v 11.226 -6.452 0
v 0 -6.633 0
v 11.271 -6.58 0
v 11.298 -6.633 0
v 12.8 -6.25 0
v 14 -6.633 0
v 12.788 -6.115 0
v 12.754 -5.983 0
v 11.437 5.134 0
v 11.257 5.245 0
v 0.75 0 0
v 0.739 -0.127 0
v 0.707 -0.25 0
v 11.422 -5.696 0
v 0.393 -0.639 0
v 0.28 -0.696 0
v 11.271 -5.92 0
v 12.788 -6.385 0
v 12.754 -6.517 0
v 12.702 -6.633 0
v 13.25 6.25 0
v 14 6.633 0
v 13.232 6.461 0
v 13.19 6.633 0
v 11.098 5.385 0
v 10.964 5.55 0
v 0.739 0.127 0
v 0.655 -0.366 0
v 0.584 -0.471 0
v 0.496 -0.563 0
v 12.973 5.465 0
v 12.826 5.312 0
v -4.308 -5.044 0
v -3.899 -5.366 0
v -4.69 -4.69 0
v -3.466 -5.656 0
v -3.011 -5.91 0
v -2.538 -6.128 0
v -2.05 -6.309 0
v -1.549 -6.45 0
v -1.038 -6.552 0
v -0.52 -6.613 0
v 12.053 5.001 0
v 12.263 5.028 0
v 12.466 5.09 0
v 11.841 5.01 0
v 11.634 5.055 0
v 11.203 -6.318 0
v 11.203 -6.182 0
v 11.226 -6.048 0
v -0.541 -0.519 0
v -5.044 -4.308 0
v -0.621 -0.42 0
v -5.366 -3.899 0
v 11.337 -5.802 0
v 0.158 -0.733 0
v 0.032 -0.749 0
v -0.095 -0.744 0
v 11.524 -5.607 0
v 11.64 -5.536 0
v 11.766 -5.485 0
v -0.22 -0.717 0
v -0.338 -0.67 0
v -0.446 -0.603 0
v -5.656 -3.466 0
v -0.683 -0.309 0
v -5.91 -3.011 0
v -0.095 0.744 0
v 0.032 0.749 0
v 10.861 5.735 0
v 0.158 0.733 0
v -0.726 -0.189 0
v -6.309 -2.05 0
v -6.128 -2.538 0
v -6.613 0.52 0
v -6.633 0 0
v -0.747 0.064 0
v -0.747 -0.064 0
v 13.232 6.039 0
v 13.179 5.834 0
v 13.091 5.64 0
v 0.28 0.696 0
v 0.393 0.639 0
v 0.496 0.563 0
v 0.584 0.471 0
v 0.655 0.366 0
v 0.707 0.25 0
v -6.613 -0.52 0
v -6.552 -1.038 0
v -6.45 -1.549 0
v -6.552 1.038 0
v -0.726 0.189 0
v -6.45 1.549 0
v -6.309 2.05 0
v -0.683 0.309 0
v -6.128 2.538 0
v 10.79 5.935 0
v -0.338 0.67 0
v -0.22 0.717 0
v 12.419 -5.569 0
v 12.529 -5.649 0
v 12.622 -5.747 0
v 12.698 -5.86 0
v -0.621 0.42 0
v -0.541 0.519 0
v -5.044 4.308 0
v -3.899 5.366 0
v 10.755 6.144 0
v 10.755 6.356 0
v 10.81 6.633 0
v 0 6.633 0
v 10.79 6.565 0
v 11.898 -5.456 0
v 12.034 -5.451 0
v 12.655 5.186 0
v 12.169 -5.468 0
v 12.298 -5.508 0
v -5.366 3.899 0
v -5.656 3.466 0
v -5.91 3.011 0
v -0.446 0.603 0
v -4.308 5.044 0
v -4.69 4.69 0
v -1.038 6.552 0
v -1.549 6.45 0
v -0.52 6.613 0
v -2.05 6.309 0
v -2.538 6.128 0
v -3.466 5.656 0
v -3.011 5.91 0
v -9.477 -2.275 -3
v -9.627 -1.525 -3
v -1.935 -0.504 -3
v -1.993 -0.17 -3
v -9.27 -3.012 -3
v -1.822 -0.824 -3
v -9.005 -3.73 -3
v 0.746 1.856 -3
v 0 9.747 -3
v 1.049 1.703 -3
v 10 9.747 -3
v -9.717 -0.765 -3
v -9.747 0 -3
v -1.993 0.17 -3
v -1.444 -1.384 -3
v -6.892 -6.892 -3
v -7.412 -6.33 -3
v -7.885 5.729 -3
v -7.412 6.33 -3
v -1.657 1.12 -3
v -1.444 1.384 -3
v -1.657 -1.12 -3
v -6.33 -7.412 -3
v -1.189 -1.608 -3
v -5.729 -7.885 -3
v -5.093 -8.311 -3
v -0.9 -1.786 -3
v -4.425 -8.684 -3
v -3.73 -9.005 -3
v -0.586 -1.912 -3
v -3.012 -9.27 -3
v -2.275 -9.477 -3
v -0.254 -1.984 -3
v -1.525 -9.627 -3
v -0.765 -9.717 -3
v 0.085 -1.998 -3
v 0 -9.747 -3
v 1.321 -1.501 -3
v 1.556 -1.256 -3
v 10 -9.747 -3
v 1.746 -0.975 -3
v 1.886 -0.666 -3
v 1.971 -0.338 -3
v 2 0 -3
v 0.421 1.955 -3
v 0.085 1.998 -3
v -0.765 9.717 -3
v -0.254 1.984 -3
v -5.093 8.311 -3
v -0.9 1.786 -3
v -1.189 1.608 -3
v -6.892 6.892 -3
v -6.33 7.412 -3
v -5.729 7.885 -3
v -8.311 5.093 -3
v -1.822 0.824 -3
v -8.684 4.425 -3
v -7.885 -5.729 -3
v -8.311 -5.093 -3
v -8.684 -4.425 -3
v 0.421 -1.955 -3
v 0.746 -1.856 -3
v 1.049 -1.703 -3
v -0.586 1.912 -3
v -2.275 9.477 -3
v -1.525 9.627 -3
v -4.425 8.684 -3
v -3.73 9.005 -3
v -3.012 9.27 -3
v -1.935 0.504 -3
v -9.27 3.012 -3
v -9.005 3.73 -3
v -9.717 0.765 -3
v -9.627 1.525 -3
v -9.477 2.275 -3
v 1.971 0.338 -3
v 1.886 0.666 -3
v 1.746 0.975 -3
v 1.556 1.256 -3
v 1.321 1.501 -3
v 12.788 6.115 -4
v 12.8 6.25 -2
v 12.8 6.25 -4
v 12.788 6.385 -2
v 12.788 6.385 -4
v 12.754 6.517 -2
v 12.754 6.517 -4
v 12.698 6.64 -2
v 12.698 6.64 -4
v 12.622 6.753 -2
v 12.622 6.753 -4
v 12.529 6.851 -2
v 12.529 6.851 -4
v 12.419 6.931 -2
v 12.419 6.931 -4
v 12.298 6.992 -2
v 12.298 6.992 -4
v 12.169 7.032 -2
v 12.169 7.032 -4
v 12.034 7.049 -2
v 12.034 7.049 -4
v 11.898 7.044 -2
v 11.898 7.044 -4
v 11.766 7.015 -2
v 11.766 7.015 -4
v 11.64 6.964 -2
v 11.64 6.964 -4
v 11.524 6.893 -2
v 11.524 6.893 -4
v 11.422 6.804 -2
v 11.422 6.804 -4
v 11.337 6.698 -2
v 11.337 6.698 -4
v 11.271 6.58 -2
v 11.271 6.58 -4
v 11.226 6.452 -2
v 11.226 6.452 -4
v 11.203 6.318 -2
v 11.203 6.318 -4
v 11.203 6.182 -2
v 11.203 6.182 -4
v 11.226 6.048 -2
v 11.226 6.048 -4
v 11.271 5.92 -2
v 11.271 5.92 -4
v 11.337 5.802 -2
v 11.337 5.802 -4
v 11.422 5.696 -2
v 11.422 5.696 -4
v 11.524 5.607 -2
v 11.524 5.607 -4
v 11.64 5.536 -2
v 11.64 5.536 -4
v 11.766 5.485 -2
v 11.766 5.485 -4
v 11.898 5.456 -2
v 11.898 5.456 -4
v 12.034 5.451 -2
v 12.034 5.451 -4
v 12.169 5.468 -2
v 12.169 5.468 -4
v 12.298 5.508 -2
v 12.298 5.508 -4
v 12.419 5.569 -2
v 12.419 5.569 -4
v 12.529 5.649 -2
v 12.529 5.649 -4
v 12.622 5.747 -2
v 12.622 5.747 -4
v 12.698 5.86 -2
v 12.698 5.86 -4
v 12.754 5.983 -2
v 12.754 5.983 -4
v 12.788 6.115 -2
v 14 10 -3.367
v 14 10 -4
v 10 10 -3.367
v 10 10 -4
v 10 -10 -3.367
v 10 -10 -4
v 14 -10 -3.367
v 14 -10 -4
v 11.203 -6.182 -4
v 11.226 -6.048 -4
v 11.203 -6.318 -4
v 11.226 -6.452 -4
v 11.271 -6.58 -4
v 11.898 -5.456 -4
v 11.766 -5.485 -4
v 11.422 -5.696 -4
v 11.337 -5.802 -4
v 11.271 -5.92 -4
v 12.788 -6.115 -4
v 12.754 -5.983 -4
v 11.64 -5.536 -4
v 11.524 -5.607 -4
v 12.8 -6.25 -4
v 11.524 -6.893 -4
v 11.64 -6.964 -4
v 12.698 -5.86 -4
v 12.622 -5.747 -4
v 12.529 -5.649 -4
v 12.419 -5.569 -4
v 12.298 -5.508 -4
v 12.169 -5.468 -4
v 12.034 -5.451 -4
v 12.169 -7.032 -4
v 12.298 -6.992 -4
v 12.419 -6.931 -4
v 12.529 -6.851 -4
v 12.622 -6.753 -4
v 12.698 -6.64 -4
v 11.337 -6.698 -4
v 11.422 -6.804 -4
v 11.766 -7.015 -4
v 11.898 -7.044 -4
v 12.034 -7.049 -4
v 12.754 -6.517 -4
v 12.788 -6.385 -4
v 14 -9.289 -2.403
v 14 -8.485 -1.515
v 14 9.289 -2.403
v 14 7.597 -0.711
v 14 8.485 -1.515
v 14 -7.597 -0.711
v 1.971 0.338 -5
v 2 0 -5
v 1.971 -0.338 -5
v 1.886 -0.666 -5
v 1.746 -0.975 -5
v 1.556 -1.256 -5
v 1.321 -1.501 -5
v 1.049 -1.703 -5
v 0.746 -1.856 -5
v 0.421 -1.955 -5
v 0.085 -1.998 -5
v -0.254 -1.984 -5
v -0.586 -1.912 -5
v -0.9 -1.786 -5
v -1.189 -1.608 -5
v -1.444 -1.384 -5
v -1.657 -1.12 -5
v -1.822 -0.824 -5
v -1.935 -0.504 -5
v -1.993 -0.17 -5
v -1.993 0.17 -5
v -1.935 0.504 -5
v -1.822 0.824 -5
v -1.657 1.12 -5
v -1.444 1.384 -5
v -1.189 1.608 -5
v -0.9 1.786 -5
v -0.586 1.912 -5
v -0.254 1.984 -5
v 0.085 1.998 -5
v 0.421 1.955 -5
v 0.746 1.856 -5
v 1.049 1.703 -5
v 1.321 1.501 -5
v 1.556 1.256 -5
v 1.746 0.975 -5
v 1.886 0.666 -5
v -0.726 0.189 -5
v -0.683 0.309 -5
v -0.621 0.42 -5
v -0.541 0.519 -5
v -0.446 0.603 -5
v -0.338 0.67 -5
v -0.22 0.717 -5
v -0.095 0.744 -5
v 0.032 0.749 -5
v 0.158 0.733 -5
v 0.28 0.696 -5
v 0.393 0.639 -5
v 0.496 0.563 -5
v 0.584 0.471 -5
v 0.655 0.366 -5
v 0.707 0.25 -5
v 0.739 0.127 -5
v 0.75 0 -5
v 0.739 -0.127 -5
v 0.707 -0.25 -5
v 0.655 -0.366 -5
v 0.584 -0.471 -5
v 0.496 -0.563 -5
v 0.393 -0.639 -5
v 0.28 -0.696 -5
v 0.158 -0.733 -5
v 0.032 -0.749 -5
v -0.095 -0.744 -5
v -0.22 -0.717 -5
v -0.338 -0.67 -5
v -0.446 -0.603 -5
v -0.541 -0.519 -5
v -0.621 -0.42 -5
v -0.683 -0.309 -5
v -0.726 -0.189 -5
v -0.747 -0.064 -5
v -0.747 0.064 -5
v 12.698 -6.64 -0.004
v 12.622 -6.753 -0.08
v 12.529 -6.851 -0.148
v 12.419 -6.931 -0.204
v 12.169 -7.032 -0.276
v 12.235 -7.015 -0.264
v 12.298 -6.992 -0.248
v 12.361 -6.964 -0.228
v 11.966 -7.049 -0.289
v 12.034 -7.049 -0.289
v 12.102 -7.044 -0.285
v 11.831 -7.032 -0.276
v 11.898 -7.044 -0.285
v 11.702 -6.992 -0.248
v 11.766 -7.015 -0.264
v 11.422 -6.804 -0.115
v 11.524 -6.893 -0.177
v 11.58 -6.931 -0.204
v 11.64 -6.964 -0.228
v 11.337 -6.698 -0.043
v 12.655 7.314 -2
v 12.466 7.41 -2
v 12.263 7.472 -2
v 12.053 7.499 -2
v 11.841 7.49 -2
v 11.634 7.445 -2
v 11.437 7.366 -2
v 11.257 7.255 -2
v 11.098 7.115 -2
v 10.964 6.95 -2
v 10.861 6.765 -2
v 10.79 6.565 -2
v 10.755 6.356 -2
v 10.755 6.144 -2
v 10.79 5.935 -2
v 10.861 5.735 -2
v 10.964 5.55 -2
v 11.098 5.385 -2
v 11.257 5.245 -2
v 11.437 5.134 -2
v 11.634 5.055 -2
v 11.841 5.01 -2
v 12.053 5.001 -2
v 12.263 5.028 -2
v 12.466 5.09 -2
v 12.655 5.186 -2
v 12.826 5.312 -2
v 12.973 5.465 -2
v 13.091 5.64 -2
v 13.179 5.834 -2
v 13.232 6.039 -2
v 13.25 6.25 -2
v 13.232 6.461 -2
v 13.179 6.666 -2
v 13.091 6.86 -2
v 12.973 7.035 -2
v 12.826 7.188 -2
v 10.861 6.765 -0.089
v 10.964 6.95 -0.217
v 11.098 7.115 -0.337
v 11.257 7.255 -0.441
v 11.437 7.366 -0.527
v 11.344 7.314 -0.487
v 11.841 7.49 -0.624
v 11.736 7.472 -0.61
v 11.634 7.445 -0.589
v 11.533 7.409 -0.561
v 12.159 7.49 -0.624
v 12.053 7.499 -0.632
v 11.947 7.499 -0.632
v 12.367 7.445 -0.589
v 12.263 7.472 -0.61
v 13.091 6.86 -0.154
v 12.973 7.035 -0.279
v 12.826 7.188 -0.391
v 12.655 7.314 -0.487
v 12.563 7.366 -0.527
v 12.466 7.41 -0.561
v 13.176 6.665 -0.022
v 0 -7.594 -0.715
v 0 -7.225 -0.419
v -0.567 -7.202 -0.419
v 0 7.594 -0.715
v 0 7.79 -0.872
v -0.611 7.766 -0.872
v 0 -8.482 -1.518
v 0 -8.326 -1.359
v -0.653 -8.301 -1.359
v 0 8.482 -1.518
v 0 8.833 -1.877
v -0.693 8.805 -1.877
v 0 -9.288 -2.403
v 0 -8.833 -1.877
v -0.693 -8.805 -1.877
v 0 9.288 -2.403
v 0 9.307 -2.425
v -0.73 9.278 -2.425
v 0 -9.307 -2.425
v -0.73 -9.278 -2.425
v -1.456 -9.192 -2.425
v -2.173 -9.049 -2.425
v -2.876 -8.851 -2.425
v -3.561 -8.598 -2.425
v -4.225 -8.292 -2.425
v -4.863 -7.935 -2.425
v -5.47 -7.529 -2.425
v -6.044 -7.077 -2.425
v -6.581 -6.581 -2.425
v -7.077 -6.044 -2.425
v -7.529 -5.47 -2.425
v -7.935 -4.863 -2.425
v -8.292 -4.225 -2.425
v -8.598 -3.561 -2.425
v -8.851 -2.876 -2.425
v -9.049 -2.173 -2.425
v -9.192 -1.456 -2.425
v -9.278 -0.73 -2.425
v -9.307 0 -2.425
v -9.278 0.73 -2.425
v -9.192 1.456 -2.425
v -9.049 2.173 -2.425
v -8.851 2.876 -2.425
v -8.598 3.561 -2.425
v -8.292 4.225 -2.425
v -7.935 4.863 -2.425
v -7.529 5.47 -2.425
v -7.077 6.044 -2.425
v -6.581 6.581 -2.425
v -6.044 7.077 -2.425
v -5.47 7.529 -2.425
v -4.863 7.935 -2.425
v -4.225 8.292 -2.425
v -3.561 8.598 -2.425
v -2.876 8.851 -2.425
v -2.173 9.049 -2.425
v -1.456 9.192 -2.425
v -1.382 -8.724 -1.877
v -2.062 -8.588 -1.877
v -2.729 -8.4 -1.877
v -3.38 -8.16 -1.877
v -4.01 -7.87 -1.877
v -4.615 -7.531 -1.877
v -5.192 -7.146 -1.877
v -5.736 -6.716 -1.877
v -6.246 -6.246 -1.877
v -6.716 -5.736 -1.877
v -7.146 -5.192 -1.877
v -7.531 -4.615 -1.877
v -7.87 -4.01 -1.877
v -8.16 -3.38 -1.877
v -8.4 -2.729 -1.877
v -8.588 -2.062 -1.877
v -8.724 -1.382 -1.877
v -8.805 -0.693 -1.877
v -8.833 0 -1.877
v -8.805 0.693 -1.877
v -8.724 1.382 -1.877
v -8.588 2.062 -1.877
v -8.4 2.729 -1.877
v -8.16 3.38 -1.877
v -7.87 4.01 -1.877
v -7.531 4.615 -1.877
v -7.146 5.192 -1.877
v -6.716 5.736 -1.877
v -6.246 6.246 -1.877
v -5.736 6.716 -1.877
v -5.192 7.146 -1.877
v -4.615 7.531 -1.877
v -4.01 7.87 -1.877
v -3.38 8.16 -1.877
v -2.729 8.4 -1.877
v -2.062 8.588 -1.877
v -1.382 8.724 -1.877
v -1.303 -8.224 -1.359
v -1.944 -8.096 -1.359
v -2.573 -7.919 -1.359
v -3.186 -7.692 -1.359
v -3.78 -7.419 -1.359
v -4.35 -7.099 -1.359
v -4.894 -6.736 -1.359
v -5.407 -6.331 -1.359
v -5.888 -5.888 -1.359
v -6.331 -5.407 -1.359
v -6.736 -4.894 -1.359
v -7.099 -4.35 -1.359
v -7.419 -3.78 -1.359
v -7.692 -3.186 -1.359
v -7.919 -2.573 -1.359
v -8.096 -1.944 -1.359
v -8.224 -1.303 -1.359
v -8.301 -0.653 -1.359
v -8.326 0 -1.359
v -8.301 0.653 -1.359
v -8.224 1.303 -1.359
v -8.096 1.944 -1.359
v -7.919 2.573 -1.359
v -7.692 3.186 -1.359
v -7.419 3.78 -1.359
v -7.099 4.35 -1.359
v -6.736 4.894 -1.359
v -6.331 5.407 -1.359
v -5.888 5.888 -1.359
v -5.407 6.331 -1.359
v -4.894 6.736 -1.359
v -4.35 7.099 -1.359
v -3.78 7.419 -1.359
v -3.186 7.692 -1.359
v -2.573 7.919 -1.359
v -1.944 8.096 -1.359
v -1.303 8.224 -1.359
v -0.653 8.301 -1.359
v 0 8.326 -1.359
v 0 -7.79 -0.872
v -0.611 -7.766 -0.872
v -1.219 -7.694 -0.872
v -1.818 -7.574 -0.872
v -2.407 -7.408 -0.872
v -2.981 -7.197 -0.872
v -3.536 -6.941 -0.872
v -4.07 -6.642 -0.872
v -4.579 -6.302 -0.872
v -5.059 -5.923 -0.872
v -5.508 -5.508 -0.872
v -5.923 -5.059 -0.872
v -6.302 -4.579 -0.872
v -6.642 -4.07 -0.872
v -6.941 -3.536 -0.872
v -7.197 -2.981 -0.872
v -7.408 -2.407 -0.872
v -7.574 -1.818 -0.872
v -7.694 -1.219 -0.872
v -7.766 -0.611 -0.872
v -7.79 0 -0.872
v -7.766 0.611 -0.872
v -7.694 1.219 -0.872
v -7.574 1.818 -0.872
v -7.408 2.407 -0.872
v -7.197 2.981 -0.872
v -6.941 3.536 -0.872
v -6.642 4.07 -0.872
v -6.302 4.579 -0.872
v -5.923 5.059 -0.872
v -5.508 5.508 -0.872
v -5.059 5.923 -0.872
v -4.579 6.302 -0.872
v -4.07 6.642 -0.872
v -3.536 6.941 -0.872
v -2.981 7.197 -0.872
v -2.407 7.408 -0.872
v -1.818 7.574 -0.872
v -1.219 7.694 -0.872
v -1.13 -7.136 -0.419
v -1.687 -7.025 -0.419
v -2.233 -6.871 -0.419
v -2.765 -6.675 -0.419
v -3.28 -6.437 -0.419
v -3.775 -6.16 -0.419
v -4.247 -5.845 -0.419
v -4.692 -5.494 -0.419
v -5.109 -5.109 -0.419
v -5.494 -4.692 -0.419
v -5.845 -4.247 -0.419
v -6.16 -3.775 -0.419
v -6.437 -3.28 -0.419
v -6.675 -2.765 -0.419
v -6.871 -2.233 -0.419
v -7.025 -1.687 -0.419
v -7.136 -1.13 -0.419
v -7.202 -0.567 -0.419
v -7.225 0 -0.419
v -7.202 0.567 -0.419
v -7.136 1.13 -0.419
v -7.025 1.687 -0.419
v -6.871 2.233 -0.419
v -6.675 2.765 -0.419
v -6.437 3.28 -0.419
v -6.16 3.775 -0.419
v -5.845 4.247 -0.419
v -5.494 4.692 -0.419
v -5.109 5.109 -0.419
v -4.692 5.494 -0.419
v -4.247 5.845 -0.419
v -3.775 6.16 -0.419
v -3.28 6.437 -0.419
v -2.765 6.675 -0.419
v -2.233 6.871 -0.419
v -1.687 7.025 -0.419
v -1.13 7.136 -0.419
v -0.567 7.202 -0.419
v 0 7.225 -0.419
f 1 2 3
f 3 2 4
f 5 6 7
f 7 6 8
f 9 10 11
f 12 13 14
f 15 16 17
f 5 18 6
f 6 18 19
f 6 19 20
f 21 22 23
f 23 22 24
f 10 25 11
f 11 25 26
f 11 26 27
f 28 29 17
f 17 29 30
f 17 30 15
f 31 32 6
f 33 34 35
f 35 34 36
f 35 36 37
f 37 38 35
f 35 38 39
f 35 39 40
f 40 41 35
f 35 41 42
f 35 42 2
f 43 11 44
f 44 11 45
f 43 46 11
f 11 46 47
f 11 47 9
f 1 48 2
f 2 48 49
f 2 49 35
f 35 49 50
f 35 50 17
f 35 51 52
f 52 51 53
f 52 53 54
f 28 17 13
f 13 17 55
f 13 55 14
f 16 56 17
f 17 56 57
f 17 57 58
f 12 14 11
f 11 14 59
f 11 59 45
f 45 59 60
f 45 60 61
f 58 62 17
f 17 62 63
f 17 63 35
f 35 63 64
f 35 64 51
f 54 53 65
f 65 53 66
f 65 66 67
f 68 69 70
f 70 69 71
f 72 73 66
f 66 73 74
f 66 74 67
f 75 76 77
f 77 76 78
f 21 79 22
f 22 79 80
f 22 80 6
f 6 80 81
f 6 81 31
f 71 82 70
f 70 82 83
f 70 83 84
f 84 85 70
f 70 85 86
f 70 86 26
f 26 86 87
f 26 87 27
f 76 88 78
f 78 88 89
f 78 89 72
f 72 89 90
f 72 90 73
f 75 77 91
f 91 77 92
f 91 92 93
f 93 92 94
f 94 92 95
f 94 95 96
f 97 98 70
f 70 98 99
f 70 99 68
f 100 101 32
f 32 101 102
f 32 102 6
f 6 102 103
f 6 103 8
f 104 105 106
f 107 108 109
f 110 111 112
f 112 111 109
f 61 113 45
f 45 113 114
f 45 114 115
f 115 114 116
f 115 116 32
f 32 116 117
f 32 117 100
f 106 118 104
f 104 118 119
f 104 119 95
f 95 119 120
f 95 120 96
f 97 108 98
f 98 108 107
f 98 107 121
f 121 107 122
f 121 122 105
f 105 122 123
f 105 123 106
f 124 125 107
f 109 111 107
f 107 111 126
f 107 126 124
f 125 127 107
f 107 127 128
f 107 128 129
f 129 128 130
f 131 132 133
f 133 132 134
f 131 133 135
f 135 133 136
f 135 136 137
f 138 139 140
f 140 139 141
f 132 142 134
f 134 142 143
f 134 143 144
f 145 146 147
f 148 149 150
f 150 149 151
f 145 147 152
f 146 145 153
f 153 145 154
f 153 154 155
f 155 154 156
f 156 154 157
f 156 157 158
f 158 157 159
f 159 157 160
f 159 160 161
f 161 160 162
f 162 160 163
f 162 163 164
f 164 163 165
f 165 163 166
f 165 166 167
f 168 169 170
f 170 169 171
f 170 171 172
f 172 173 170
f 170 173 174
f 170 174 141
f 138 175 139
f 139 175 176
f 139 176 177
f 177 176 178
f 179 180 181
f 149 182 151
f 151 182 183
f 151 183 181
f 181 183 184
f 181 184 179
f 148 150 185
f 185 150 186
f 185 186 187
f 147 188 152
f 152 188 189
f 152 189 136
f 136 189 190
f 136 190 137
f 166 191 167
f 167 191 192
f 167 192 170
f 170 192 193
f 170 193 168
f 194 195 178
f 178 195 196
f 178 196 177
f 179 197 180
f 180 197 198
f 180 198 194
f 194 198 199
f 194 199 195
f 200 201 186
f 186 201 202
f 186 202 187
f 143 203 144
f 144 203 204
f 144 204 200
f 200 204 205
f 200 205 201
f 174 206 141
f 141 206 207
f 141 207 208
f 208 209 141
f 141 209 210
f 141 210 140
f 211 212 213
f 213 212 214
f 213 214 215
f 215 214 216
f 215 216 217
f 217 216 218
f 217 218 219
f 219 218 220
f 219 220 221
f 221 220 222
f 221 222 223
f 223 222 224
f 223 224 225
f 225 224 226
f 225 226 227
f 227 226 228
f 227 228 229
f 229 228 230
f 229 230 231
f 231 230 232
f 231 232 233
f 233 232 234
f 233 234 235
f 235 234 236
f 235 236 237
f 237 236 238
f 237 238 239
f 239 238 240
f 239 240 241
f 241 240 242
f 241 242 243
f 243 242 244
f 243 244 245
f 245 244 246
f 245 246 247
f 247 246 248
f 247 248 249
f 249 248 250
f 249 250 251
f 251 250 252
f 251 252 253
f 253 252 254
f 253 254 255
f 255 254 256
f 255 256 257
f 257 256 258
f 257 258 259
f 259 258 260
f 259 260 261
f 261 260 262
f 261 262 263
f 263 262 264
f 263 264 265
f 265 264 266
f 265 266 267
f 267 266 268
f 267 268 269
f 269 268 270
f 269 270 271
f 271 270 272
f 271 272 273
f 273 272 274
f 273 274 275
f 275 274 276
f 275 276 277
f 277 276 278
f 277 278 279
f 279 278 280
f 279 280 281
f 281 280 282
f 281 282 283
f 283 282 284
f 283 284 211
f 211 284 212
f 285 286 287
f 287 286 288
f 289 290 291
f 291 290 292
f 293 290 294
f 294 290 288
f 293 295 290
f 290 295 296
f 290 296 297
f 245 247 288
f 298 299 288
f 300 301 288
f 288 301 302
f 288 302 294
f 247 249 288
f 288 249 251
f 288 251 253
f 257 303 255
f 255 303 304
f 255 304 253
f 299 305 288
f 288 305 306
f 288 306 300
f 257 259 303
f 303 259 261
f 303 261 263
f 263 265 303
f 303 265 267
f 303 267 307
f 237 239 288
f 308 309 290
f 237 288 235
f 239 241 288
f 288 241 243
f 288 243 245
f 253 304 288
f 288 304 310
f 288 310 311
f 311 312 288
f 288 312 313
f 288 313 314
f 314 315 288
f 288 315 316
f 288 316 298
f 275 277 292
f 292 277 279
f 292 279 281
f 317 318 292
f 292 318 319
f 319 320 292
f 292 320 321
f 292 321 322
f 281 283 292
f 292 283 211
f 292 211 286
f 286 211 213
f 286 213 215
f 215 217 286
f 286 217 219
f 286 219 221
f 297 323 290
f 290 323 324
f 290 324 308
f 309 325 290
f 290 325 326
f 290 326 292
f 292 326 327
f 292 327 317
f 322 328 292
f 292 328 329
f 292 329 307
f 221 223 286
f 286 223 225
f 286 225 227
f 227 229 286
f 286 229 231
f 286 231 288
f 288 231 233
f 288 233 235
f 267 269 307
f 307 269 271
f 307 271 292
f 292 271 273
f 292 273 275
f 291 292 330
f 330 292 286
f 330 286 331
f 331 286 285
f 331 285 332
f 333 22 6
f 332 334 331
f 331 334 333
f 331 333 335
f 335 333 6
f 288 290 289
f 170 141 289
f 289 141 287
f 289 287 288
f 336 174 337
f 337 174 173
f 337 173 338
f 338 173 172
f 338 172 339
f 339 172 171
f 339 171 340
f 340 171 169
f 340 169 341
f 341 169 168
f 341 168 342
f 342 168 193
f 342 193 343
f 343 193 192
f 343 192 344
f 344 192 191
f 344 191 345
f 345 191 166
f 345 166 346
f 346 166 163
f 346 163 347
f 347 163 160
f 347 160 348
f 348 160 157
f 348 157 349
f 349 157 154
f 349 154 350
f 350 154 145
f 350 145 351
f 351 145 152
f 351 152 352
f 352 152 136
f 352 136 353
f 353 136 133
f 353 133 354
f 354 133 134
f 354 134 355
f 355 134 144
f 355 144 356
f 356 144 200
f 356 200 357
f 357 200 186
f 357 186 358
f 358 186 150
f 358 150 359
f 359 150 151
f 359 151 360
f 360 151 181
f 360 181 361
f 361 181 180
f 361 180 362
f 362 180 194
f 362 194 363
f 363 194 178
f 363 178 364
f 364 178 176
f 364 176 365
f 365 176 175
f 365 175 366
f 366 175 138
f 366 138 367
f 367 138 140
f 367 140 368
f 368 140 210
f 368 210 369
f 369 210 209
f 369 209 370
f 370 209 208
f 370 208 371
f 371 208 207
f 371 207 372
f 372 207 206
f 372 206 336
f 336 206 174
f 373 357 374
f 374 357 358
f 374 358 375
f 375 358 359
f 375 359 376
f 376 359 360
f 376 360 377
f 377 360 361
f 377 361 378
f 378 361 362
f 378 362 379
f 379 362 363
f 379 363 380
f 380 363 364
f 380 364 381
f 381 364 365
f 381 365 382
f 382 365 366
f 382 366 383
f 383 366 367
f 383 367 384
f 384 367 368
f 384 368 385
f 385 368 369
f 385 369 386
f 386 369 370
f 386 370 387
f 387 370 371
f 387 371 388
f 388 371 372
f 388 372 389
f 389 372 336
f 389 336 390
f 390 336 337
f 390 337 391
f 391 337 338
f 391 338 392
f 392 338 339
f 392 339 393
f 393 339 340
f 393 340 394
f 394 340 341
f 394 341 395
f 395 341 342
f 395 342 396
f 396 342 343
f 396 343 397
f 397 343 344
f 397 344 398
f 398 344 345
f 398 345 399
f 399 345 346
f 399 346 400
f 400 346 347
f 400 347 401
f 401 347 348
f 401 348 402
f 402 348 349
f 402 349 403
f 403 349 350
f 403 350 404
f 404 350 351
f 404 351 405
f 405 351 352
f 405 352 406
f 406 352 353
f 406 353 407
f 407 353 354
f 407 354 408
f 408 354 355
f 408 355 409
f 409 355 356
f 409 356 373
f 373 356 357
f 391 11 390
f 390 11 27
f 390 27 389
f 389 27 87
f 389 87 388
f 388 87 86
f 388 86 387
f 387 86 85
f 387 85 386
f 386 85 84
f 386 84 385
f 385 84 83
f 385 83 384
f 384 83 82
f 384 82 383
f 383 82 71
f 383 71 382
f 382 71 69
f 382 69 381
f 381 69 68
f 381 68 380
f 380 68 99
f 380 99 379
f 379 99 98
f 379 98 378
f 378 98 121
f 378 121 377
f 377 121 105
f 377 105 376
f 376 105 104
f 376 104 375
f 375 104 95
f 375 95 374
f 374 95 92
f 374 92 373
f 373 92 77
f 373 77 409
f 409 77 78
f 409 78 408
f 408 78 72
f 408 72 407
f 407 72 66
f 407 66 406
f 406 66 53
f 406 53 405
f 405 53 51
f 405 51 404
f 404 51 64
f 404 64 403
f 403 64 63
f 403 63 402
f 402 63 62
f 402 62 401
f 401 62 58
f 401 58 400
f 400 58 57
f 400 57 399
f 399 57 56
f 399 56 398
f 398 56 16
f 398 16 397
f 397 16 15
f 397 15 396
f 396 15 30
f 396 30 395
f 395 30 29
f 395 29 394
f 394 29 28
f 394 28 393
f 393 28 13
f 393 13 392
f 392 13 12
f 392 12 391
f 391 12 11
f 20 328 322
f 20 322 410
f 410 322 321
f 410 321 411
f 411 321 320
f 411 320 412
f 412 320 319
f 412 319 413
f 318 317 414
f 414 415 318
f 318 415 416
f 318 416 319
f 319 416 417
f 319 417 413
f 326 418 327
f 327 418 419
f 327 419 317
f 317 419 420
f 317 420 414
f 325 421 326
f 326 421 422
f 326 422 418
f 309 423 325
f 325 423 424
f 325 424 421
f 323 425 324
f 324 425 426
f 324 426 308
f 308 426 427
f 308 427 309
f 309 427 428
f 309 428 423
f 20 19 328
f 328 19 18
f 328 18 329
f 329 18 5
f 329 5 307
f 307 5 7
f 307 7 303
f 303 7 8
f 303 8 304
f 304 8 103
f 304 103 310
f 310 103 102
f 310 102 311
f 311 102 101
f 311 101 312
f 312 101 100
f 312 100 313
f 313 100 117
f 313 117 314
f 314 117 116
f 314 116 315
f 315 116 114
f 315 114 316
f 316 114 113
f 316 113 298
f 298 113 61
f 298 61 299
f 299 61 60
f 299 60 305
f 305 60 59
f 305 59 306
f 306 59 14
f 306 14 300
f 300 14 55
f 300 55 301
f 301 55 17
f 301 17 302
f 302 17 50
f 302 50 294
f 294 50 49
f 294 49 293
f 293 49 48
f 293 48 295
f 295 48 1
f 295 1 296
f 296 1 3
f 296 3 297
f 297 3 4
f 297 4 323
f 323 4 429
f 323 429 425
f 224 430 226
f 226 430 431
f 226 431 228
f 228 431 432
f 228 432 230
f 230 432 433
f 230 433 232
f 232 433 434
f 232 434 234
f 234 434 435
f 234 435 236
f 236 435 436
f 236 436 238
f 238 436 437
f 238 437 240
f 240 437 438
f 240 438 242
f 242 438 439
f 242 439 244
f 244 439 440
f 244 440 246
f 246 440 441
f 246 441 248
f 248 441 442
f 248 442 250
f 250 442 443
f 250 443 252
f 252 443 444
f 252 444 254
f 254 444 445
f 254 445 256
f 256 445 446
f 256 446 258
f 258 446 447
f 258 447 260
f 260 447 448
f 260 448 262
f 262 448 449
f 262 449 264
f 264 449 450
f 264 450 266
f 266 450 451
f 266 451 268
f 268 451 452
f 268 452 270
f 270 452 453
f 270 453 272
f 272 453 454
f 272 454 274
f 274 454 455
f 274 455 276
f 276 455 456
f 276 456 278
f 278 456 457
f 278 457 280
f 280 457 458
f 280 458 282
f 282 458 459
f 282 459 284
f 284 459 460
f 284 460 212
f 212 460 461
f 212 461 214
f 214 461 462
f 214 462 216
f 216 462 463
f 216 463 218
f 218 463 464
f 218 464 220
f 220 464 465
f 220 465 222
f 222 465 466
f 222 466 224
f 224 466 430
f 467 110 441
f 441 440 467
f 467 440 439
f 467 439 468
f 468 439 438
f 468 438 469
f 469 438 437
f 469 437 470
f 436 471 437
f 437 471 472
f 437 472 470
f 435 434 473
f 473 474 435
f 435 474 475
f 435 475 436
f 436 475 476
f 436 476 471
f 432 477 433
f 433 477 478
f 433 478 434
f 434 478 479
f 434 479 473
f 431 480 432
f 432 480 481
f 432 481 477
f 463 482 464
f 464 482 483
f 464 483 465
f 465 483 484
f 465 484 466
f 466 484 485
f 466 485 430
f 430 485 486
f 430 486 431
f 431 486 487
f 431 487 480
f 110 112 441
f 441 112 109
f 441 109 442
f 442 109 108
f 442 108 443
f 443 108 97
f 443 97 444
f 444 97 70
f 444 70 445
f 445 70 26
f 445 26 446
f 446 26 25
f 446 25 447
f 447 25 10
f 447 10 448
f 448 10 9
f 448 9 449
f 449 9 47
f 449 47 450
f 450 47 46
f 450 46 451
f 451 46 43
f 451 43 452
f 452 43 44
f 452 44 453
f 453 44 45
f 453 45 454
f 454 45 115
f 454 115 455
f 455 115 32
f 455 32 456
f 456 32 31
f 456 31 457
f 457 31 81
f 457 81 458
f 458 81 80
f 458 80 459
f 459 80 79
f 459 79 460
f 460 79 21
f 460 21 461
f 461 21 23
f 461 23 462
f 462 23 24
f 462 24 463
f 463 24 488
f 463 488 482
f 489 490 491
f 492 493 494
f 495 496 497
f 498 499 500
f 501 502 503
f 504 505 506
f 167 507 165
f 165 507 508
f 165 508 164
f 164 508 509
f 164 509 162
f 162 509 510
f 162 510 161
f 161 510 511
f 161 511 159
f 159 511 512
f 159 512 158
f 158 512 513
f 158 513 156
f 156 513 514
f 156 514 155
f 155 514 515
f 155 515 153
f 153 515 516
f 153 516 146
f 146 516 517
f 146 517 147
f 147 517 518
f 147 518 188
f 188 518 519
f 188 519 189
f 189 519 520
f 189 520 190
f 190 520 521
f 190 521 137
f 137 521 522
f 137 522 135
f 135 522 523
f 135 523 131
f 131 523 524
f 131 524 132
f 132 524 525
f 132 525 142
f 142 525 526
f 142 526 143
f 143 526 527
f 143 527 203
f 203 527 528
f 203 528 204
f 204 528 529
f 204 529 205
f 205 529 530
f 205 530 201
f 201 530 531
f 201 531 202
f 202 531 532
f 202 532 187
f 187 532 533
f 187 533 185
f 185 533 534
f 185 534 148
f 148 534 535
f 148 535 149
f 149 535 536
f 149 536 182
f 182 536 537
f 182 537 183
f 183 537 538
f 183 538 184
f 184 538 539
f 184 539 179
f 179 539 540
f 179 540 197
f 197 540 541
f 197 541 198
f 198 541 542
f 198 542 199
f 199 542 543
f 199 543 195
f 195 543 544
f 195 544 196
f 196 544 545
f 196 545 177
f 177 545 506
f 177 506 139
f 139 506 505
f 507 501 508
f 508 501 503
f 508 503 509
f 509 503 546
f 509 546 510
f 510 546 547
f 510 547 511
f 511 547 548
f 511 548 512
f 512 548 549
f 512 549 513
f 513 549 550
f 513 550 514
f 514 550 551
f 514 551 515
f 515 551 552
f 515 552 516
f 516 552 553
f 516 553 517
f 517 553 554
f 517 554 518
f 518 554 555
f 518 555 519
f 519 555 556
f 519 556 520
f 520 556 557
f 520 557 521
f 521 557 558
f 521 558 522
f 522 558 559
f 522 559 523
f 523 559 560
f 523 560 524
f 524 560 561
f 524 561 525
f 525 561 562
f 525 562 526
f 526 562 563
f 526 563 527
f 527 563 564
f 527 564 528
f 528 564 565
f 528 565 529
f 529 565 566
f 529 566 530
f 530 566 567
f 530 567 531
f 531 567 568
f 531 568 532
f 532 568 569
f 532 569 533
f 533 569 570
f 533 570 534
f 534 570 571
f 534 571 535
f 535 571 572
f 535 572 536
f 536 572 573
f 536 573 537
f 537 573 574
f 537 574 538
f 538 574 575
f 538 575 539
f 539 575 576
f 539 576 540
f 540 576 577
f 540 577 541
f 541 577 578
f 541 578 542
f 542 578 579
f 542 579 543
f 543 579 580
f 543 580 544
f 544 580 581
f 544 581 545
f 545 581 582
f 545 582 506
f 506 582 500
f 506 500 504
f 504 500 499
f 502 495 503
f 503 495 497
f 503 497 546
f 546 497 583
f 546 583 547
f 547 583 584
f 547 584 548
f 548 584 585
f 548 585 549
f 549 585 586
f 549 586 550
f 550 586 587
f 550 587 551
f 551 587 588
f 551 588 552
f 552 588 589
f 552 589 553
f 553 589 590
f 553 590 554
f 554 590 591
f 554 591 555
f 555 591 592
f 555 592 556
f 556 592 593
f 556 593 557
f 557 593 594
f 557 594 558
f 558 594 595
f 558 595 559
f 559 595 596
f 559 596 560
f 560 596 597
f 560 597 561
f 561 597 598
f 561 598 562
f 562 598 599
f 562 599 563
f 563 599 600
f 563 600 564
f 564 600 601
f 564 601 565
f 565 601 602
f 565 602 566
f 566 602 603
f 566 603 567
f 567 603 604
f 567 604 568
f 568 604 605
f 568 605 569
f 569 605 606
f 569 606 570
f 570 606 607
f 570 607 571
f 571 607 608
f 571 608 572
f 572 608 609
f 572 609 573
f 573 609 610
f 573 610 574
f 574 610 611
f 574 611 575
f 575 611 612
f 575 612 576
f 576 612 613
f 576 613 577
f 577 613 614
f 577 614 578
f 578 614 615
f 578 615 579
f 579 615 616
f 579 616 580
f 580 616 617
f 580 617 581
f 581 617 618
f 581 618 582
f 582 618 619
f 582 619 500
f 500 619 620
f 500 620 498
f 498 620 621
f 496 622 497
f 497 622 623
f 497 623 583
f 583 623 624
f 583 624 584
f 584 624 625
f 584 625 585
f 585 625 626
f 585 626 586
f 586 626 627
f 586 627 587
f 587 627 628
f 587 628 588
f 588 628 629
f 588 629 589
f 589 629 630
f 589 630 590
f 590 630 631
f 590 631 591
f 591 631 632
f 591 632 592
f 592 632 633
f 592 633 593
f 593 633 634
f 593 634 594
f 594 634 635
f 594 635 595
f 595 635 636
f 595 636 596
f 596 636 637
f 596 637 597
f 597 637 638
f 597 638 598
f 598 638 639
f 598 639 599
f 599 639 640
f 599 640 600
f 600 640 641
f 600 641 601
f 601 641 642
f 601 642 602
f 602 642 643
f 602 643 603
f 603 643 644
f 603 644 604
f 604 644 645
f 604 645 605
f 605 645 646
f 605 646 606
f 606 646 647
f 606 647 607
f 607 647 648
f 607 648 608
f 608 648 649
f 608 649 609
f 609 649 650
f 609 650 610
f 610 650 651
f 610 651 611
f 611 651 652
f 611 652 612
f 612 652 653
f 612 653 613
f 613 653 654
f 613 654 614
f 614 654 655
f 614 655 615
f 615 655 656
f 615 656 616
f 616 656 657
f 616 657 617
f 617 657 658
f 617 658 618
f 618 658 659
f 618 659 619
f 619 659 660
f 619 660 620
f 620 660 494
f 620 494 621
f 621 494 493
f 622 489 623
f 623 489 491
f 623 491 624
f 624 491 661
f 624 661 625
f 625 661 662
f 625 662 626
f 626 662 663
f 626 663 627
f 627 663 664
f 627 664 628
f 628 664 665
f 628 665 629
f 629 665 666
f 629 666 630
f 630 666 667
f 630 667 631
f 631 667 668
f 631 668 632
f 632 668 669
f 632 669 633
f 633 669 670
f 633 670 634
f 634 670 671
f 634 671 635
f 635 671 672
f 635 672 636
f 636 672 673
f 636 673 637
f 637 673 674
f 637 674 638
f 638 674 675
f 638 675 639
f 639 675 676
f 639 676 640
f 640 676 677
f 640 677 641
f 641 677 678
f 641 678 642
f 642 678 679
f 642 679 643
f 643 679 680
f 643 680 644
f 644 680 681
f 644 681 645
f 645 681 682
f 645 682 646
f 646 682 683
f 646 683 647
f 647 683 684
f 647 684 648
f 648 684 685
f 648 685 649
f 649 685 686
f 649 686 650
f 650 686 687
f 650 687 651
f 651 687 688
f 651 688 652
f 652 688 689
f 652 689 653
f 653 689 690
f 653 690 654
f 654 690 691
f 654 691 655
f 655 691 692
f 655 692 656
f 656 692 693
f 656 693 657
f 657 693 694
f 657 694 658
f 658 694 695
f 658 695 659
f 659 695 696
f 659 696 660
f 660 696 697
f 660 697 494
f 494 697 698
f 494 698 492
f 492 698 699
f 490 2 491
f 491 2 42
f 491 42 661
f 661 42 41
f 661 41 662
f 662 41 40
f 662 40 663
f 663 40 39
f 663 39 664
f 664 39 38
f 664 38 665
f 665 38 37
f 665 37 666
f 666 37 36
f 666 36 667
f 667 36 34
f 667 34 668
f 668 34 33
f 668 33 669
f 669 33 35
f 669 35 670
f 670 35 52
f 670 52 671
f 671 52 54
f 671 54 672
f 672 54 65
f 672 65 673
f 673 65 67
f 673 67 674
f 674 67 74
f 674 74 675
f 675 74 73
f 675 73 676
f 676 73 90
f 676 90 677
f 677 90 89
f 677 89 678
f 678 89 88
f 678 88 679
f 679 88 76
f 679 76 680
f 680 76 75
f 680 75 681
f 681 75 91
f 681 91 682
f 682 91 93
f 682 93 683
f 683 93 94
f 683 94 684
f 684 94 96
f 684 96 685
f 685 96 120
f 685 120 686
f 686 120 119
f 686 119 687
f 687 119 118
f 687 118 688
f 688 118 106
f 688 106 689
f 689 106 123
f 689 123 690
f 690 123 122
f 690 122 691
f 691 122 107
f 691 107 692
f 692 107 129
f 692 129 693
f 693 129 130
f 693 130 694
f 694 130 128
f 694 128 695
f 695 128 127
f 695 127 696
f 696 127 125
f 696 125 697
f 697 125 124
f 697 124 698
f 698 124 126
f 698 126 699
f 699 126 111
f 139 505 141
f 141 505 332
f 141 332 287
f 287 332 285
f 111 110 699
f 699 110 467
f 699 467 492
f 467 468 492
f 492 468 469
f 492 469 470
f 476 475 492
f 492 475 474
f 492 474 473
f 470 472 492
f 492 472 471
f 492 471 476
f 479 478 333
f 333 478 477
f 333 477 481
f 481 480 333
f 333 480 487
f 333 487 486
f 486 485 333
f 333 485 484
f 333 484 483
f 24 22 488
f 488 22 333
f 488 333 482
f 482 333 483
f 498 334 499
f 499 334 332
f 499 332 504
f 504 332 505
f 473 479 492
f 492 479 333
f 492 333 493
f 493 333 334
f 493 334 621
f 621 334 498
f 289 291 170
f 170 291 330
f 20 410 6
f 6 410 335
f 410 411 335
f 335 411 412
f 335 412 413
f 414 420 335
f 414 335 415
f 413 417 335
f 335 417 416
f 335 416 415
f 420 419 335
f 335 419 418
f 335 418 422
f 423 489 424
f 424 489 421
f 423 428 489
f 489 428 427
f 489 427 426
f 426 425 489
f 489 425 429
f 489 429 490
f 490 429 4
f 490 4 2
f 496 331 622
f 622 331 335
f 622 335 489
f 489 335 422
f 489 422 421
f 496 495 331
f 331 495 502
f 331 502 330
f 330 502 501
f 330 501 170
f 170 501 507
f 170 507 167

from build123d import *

# Parameters (mm, degrees)
SKETCH1_R           = 10
BOSS_EXTRUDE1_DEPTH = 4
BODY_START          = -3
SKETCH2_R           = 10
BODY_HOLE_DEPTH     = 2
BOSS_EXTRUDE2_START = -3
SKETCH11_R          = 2
BOSS_EXTRUDE2_DEPTH = 2
SKETCH4_R           = 0.75
CUT_EXTRUDE2_DEPTH  = 6
SKETCH3_R           = 0.8
SCREW_HOLES_DEPTH   = 6
SKETCH6_R           = 1.25
SCREW_HEADS_DEPTH   = 2
CUT_REVOLVE1_ANGLE  = 180
CUT_EXTRUDE1_DEPTH  = 15.000000004


with BuildPart() as part:
    # Sketch1 → Boss-Extrude1 (new body)
    with BuildSketch(Plane.XY):
        with Locations((4e-09, 0)):
            Circle(SKETCH1_R)
        with BuildLine():
            Line((14.000000004, 10), (4e-09, 10))
            ThreePointArc((4e-09, 10), (7.071067816, 7.071067812), (10.000000004, 0))
            ThreePointArc((10.000000004, 0), (7.071067816, -7.071067812), (4e-09, -10))
            Line((4e-09, -10), (14.000000004, -10))
            Line((14.000000004, -10), (14.000000004, 10))
        make_face()
    extrude(amount=-BOSS_EXTRUDE1_DEPTH)

    # Sketch2 → Body Hole (cut)
    with BuildSketch(Plane.XY.offset(BODY_START)):
        with Locations((4e-09, 0)):
            Circle(SKETCH2_R)
        with BuildLine():
            Line((10.000000004, 10), (4e-09, 10))
            ThreePointArc((4e-09, 10), (7.071067816, 7.071067812), (10.000000004, 0))
            Line((10.000000004, 0), (10.000000004, 10))
        make_face()
        with BuildLine():
            Line((10.000000004, -10), (10.000000004, 0))
            ThreePointArc((10.000000004, 0), (7.071067814, -7.071067813), (0, -10))
            Line((0, -10), (10.000000004, -10))
        make_face()
    extrude(amount=-BODY_HOLE_DEPTH, mode=Mode.SUBTRACT)

    # Sketch11 → Boss-Extrude2 (add)
    with BuildSketch(Plane.XY.offset(BOSS_EXTRUDE2_START)):
        with Locations((4e-09, 0)):
            Circle(SKETCH11_R)
    extrude(amount=-BOSS_EXTRUDE2_DEPTH)

    # Sketch4 → Cut-Extrude2 (cut, through all)
    with BuildSketch(Plane.XY):
        with Locations((4e-09, 0)):
            Circle(SKETCH4_R)
    extrude(amount=-CUT_EXTRUDE2_DEPTH, mode=Mode.SUBTRACT)

    # Sketch3 → Screw Holes (cut, through all)
    with BuildSketch(Plane.XY):
        with Locations((12.000000004, 6.25)):
            Circle(SKETCH3_R)
        with Locations((12.000000004, -6.25)):
            Circle(SKETCH3_R)
    extrude(amount=-SCREW_HOLES_DEPTH, mode=Mode.SUBTRACT)

    # Sketch6 → Screw Heads (cut)
    with BuildSketch(Plane.XY):
        with Locations((12.000000004, 6.25)):
            Circle(SKETCH6_R)
    extrude(amount=-SCREW_HEADS_DEPTH, mode=Mode.SUBTRACT)

    # Sketch9 → Cut-Revolve1 (revolve, cut)
    with BuildSketch(Plane(origin=(0, 0, 0), x_dir=(0, 0, -1), z_dir=(1, 0, 0))):
        with BuildLine():
            Line((-2, 12), (-2, 2.75))
            Line((-2, 2.75), (-1.680646386, 2.75))
            ThreePointArc((-1.680646386, 2.75), (2.550167787, 9.407443861), (10, 12))
            Line((10, 12), (-2, 12))
        make_face()
    revolve(axis=Axis((0, 0, 0), (0, 0, 1)), revolution_arc=CUT_REVOLVE1_ANGLE, mode=Mode.SUBTRACT)

    # Sketch10 → Cut-Extrude1 (cut, through all)
    with BuildSketch(Plane(origin=(0, 0, 0), x_dir=(0, 0, -1), z_dir=(1, 0, 0))):
        with BuildLine():
            ThreePointArc((10, 12), (1.514718626, 8.485281374), (-2, 0))
            Line((-2, 0), (-2, 12))
            Line((-2, 12), (10, 12))
        make_face()
        with BuildLine():
            ThreePointArc((-2, 0), (1.514718626, -8.485281374), (10, -12))
            Line((10, -12), (-2, -12))
            Line((-2, -12), (-2, 0))
        make_face()
    extrude(amount=CUT_EXTRUDE1_DEPTH, mode=Mode.SUBTRACT)


solid = part.part
